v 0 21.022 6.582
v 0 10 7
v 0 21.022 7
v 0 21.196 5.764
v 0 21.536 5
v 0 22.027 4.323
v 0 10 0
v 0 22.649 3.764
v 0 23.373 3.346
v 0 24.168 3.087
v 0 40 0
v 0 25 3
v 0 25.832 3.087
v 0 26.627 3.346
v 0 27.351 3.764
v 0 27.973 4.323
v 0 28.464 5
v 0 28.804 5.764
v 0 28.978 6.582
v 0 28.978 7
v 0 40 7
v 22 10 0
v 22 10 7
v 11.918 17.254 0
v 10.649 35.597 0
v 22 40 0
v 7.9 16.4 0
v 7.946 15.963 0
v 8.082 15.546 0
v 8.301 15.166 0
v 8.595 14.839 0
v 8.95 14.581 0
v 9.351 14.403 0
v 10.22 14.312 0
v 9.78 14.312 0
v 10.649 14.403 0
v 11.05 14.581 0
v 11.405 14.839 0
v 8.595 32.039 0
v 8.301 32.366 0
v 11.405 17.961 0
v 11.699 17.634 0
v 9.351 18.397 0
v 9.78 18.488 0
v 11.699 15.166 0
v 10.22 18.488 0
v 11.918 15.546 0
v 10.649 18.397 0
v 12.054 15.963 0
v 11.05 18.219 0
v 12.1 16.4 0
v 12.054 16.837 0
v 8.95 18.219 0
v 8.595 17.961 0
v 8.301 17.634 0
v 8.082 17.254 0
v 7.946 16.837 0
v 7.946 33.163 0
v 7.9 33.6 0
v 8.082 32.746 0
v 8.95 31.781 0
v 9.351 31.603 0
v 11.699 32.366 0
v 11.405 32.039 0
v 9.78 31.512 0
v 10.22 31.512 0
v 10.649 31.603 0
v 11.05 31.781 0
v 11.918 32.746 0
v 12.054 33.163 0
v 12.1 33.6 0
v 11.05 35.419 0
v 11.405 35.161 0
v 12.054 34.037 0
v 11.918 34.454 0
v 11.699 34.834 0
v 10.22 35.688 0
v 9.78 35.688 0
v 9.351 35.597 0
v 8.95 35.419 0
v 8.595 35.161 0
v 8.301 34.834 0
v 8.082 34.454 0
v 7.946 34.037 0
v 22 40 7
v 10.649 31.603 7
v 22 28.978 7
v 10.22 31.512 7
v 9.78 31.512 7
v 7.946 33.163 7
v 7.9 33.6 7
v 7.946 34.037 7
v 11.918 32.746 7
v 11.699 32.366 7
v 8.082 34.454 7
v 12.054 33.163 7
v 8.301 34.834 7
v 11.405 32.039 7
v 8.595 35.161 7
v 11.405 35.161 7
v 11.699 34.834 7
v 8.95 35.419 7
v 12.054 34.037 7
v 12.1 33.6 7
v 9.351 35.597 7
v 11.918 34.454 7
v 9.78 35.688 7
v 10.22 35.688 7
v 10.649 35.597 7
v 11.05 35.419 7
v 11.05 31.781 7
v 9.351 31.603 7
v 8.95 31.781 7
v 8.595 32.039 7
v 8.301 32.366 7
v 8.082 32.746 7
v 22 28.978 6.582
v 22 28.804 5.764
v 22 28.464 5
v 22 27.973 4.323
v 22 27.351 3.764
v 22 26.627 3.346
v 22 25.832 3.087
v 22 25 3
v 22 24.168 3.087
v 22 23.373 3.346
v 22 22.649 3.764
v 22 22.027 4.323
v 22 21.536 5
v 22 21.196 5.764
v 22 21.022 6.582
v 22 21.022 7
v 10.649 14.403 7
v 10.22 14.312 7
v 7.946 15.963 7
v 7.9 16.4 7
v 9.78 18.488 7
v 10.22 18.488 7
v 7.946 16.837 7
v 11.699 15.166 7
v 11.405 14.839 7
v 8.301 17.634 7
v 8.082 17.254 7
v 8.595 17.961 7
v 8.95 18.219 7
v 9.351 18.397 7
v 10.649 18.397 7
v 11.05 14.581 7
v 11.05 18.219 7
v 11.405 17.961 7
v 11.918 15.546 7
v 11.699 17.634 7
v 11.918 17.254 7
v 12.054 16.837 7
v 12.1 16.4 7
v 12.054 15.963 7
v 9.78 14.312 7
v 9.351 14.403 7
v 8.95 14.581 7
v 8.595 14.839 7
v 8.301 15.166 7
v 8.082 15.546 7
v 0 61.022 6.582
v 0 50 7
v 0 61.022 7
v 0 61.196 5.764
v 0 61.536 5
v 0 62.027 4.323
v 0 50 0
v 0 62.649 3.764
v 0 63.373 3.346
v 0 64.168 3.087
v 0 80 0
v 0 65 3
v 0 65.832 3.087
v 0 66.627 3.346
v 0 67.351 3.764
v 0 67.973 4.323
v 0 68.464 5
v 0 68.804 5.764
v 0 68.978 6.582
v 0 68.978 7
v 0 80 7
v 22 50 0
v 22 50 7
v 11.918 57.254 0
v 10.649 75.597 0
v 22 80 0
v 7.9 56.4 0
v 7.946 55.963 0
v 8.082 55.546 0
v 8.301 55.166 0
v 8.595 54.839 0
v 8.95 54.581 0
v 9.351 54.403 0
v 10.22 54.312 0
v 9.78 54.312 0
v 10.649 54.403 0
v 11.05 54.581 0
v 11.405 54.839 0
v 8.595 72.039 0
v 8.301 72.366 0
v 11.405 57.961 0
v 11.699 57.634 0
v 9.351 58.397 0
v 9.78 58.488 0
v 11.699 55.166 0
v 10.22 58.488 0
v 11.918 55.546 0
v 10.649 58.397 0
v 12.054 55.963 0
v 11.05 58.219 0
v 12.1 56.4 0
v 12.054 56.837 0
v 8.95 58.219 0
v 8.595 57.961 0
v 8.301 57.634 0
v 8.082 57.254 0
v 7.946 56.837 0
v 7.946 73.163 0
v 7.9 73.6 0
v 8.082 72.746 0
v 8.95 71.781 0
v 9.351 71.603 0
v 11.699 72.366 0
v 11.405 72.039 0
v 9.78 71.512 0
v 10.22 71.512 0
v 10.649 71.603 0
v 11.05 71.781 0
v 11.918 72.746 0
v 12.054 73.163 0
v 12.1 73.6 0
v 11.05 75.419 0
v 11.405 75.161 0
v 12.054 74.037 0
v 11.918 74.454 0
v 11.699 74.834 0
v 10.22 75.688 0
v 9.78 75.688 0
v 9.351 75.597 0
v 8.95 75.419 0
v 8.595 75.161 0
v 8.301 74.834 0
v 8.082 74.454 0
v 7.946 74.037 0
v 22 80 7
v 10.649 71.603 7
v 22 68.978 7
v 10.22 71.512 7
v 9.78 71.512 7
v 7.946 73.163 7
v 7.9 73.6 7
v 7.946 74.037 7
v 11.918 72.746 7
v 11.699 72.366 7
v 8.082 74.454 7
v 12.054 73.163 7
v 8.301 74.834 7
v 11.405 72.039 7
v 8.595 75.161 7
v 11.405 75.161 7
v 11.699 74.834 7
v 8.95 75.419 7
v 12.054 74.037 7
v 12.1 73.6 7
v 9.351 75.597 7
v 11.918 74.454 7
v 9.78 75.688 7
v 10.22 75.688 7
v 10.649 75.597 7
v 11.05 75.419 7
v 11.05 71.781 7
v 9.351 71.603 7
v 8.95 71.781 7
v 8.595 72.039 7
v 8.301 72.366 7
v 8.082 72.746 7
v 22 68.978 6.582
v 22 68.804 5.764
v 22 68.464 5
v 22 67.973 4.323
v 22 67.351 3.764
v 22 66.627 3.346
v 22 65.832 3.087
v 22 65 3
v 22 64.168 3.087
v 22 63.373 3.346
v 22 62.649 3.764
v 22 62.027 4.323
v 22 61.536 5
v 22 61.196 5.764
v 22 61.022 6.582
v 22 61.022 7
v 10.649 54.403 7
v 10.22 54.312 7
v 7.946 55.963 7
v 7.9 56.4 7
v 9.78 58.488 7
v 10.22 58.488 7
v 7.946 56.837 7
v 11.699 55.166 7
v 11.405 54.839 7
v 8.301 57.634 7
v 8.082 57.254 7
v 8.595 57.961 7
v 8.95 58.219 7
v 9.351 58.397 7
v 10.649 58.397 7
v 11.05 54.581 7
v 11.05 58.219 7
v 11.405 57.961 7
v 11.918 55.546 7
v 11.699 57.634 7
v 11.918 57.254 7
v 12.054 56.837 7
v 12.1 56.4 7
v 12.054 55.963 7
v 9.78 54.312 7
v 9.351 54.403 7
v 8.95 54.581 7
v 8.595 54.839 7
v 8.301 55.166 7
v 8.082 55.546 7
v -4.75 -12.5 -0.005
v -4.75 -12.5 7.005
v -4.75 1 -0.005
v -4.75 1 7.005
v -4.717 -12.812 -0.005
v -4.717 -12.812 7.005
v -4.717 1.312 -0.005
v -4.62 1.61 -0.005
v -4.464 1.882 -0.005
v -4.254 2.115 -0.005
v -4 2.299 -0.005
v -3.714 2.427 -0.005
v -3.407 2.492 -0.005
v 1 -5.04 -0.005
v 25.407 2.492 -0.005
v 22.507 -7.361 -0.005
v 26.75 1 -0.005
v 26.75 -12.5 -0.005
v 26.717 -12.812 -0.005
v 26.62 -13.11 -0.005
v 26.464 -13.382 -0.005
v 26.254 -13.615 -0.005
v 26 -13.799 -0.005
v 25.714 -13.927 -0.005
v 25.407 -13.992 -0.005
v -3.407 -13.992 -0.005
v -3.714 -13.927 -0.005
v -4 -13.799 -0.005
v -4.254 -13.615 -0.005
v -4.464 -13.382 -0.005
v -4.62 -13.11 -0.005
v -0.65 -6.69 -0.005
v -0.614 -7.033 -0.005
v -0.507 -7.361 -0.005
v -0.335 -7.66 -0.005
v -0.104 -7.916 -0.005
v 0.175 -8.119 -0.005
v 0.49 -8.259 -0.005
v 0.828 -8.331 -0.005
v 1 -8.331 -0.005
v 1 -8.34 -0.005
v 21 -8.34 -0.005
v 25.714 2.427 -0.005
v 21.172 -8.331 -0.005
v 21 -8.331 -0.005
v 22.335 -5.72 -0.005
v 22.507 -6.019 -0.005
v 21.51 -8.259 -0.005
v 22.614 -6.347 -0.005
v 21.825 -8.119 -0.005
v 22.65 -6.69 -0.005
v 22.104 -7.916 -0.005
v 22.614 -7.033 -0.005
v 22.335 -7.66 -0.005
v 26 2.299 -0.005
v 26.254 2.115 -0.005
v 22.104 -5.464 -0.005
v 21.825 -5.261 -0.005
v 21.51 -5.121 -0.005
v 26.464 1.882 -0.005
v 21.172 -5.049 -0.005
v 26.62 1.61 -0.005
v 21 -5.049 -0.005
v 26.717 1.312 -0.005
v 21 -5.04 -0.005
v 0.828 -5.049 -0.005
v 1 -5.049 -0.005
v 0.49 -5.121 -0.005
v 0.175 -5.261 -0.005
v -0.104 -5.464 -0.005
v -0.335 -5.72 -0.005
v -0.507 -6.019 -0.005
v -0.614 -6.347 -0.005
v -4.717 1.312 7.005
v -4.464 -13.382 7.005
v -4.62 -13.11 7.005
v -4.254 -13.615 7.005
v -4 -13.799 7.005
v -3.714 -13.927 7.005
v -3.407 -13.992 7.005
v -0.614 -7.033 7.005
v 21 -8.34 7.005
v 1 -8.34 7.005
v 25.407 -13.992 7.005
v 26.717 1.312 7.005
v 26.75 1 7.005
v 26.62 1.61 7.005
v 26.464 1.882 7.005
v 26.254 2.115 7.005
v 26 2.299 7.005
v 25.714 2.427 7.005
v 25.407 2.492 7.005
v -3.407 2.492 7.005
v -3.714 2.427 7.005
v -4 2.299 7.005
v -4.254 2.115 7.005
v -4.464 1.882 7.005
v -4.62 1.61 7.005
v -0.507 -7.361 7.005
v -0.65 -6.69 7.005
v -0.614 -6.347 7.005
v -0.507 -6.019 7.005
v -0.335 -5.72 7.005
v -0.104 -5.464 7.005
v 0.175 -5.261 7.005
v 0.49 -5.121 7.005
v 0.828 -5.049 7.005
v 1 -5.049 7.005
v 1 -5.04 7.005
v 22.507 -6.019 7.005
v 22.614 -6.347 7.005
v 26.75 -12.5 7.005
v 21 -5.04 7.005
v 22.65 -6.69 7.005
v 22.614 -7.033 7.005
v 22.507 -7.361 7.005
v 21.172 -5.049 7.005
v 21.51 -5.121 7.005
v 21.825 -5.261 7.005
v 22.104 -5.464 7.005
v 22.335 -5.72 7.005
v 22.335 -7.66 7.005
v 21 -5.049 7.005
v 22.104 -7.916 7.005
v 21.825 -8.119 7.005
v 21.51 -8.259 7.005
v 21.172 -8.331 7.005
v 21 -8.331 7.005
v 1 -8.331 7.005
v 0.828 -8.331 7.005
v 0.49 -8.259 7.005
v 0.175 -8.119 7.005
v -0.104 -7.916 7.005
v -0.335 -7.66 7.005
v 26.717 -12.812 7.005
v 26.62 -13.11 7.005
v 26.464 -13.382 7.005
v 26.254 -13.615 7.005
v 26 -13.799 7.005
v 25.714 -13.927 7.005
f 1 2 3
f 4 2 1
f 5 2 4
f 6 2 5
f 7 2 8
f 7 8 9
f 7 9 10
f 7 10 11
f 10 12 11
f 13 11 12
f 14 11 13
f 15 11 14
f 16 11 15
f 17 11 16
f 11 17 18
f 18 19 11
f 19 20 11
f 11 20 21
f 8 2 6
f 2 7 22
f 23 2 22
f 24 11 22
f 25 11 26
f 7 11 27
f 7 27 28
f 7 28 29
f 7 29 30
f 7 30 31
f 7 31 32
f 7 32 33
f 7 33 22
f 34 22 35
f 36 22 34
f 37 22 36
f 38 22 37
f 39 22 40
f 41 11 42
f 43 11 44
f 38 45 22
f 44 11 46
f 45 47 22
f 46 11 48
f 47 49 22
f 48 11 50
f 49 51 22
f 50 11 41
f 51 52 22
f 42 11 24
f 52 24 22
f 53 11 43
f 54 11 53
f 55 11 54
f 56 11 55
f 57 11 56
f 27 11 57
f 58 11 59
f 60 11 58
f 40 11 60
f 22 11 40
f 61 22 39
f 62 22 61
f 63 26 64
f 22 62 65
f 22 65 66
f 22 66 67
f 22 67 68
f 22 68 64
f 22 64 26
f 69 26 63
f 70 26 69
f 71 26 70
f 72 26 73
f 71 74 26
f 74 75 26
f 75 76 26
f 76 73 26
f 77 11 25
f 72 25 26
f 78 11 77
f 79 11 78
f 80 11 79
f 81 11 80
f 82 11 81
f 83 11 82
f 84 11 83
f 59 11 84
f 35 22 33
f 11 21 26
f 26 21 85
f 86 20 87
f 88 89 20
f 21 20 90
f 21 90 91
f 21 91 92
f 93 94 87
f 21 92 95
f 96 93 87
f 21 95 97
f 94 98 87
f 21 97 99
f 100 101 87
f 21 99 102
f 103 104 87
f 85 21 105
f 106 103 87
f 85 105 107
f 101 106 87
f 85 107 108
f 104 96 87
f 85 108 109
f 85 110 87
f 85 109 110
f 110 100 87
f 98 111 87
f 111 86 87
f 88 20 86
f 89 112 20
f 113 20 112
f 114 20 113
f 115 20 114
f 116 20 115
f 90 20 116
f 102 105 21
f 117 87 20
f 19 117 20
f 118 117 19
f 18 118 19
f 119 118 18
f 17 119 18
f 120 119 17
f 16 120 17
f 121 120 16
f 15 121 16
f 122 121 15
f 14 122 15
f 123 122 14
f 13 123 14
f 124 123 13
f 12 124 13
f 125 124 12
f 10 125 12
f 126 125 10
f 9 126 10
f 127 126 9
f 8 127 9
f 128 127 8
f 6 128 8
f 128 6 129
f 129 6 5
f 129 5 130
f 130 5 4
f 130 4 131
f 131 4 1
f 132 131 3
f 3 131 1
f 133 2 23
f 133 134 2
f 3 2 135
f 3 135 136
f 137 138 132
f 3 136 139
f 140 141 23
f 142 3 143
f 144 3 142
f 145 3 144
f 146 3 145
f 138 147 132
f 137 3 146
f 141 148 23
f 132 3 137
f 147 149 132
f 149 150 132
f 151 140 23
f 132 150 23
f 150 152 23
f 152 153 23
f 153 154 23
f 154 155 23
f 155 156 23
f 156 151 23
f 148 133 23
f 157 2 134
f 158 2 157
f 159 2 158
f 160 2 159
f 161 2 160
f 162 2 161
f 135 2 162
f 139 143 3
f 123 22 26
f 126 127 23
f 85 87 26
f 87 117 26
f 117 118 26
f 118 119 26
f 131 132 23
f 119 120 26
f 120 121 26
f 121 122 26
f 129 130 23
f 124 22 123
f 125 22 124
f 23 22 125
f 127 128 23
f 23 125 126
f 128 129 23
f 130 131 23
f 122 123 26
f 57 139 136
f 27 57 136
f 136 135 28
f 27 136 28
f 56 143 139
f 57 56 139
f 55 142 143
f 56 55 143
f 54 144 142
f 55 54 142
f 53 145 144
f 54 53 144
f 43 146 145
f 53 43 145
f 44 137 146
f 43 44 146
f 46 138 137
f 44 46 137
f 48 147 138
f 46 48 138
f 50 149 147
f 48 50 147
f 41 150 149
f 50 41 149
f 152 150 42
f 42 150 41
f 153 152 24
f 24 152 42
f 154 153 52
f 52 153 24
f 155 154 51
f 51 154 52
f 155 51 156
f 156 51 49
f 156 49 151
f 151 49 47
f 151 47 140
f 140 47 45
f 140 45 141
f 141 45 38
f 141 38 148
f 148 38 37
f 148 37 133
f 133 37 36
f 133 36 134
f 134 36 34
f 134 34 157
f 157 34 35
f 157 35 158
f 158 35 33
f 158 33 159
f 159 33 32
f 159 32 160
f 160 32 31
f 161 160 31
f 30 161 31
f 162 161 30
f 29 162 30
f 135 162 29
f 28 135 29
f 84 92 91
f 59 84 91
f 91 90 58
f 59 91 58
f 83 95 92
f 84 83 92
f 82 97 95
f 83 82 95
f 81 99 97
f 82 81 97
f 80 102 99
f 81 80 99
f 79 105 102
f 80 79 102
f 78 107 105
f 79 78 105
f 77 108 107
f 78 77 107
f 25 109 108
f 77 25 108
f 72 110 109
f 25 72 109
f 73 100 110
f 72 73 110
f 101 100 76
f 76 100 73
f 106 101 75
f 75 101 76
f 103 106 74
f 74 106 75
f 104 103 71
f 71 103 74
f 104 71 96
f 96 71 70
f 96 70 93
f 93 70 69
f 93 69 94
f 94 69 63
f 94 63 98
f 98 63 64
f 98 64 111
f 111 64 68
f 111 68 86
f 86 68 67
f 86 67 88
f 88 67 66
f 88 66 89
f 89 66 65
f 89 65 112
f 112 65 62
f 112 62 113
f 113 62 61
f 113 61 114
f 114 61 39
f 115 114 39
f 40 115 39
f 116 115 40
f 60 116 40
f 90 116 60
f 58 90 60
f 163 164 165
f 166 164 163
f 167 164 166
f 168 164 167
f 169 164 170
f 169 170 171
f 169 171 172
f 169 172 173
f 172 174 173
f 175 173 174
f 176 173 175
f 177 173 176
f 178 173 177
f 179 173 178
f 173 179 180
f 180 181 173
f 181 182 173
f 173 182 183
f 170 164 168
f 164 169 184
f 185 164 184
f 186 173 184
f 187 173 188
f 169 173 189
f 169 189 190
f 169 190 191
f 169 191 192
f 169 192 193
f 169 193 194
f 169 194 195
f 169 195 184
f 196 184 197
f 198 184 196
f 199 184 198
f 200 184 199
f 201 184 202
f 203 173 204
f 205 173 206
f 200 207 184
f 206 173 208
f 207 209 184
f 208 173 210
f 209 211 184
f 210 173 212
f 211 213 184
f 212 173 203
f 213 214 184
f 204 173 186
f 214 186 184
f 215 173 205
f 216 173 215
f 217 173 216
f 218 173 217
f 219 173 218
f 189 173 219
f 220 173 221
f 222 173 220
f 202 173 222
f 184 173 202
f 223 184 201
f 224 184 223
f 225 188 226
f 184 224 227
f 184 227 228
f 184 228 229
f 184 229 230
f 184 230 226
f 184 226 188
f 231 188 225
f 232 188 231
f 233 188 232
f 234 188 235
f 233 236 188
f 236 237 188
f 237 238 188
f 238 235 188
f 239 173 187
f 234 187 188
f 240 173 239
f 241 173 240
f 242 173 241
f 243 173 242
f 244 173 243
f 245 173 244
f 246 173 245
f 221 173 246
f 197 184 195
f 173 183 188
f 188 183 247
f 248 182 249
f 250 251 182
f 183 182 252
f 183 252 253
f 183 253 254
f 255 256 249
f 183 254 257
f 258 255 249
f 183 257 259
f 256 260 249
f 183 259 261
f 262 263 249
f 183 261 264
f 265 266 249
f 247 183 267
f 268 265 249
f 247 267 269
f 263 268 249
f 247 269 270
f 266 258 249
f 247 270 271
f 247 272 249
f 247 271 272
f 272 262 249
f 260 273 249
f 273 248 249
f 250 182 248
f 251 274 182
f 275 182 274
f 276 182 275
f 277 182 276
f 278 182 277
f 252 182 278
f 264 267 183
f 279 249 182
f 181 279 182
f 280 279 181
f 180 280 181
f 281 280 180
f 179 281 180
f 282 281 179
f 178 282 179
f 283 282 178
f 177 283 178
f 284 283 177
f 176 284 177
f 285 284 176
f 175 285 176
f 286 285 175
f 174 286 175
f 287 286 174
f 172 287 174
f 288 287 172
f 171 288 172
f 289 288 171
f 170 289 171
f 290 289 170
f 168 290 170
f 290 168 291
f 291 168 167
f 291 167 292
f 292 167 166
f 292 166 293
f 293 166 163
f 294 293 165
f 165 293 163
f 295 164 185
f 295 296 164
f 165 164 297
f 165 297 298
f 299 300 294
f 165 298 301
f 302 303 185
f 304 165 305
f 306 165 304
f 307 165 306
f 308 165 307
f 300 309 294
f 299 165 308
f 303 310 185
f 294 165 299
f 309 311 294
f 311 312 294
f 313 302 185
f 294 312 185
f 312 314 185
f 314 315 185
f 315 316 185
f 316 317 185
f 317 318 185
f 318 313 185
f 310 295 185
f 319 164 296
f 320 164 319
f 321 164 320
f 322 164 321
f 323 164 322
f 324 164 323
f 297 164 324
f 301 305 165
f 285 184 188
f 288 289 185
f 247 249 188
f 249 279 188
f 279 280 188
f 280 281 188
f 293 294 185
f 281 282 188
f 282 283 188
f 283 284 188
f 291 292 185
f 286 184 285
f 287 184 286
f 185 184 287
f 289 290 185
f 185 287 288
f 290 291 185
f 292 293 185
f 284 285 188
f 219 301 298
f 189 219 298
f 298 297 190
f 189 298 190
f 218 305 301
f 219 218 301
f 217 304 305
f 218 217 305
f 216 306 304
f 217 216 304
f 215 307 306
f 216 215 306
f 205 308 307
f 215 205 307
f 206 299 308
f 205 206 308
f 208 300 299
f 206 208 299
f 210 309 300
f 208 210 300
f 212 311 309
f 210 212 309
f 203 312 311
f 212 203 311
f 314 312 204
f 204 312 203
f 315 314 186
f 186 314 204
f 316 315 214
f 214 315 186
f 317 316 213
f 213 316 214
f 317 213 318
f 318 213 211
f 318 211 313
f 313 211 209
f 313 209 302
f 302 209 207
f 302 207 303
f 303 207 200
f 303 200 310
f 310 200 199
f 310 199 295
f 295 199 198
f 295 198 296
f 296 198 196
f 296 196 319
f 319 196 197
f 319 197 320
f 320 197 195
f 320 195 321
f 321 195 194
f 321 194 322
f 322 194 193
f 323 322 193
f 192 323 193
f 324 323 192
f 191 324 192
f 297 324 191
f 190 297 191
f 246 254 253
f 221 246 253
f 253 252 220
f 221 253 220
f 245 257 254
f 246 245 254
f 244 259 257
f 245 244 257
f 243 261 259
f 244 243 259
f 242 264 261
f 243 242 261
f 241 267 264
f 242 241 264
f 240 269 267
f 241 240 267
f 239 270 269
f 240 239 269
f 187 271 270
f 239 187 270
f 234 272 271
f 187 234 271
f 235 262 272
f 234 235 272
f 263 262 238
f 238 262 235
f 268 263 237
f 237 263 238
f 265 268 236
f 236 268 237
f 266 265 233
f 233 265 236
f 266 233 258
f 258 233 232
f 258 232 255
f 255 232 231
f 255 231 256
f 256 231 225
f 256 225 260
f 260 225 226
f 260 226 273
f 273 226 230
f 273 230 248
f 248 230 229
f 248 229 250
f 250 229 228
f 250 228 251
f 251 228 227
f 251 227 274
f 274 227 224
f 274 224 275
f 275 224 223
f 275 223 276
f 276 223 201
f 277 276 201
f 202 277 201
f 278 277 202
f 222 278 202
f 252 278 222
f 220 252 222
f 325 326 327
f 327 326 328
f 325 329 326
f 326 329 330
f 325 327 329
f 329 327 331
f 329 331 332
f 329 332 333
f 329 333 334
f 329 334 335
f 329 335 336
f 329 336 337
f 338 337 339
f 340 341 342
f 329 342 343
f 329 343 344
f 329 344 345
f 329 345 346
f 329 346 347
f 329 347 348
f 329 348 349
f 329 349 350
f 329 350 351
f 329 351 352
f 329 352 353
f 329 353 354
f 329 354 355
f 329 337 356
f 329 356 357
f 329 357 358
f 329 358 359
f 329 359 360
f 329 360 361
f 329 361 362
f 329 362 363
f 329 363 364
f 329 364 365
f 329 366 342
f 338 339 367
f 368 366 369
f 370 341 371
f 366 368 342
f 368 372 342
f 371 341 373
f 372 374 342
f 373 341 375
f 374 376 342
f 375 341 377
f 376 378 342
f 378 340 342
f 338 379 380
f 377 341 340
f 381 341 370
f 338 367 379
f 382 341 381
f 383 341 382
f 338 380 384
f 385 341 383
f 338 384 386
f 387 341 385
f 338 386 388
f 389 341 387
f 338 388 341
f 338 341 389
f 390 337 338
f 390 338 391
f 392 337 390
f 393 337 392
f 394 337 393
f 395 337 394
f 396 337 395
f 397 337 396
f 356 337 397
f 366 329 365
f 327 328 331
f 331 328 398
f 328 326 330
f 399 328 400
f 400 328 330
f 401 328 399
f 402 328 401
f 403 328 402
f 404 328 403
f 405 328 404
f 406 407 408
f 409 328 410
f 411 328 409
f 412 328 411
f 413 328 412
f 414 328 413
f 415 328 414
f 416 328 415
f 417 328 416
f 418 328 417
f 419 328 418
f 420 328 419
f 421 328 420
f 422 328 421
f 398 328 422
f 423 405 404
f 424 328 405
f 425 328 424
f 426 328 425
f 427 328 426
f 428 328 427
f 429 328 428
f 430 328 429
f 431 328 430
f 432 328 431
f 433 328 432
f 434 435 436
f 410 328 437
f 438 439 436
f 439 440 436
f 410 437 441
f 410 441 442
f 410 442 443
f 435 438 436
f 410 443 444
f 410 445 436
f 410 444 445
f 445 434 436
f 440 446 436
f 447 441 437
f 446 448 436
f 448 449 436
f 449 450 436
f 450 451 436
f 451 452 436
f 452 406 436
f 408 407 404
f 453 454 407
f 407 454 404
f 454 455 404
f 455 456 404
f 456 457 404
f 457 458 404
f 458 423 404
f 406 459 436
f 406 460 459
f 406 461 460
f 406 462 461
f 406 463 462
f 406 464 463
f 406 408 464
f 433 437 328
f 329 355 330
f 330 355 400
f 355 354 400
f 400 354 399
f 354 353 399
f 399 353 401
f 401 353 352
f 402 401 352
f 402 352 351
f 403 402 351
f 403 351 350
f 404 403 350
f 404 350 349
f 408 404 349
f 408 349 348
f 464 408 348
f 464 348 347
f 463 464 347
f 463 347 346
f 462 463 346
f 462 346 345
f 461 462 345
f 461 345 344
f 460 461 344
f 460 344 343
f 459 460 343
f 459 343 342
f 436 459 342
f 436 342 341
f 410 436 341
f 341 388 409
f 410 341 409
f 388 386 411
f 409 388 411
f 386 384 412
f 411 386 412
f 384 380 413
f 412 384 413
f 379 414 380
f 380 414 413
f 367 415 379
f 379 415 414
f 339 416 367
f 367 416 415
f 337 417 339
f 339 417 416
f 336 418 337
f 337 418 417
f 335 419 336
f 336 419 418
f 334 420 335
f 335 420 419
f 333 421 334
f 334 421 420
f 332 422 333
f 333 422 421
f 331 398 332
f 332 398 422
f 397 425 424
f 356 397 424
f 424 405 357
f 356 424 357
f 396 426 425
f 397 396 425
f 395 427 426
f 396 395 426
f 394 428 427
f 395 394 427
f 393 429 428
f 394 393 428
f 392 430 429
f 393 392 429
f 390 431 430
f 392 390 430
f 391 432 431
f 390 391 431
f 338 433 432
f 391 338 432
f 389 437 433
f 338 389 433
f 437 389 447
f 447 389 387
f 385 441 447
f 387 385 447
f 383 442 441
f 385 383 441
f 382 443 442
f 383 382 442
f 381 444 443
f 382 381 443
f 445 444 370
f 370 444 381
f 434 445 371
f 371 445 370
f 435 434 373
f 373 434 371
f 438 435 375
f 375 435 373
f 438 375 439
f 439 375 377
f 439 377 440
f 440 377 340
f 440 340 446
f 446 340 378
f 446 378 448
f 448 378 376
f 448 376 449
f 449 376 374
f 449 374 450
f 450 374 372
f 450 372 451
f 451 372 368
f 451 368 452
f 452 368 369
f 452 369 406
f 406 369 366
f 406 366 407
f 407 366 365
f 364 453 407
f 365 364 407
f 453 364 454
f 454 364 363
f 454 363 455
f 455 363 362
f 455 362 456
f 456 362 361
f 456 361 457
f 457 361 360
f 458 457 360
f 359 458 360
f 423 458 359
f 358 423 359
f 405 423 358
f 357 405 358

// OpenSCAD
// file: functions.scad
// PRUSA Mendel  
// Functions used in many files
// GNU GPL v2
// Josef Průša
// josefprusa@me.com
// prusadjs.cz
// http://www.reprap.org/wiki/Prusa_Mendel
// http://github.com/prusajr/PrusaMendel

module nut(d,h,horizontal=true){
cornerdiameter =  (d / 2) / cos (180 / 6);
cylinder(h = h, r = cornerdiameter, $fn = 6);
if(horizontal){
for(i = [1:6]){
	rotate([0,0,60*i]) translate([-cornerdiameter-0.2,0,0]) rotate([0,0,-45]) cube(size = [2,2,h]);
}}
}

// By nophead
module polyhole(d,h) {
    n = max(round(2 * d),3);
    rotate([0,0,180])
        cylinder(h = h, r = (d / 2) / cos (180 / n), $fn = n);
}

module roundcorner(diameter){
	difference(){
		cube(size = [diameter,diameter,99], center = false);
		translate(v = [diameter, diameter, 0]) cylinder(h = 100, r=diameter, center=true);
	}
}
// file: metric.scad
// PRUSA Mendel  
// Default metric sizes
// GNU GPL v2
// Josef Průša
// josefprusa@me.com
// prusadjs.cz
// http://www.reprap.org/wiki/Prusa_Mendel
// http://github.com/prusajr/PrusaMendel

// DONT CHANGE THIS FILE! ALTER VALUES IN CONFIGURATION.SCAD INSTEAD

// RODS

threaded_rod_diameter = 8;
threaded_rod_diameter_horizontal = 8;
smooth_bar_diameter = 8;
smooth_bar_diameter_horizontal = 8;

// Nuts and bolts

m8_diameter = 8;
m8_nut_diameter = 14.5;

m4_diameter = 4;
m4_nut_diameter = 7.5;

m3_diameter = 3;
m3_nut_diameter = 5;

// Bushing holder

bushing_core_diameter = smooth_bar_diameter;
bushing_material_thickness = 1;

// Motors

motor_shaft = 5.1;
// file: y-rod-support-clamp.scad
// M8 Y-axes holders for Prism Mendel
// by Terawatt Industries
// author Free Beachler

include <configuration.scad>;

// PARAMETERS
a = 30;								// parts angle
extrusion_width = 20;
holder_height = 20;
holder_width = 60;
mnt_base_thickness = 6;	// need clearance for M4 screws to tnut
overlap = 0.1;			// amount to overlap aluminum t-extrusion
slot_tab_depth = 2;
rod_radius = 4;
offset_above_extrusion = 0;	// top of extrusion to rod-center
m4_screw_edge_padding = 6;
m4_screw_dia = m4_diameter;

// CALCULATIONS
rod_center_offset_vert = mnt_base_thickness / 2;
clamp_rod_radius = rod_radius;

// RENDER
$fn=30;

yrodsupportclamp(holder_height, holder_width, mnt_base_thickness, overlap, slot_tab_depth, clamp_rod_radius, rod_center_offset_vert, m4_screw_dia);

module yrodsupportclamp(yh = holder_height, yw = holder_width, ybt = mnt_base_thickness, yo = overlap, ystd = slot_tab_depth, yrd = clamp_rod_radius, yrcov = rod_center_offset_vert, m4 = m4_screw_dia) 
{
	translate([0,-15,-15]) {
		difference() {
			rodsupport(yh, yw, ybt,yo,ystd,yrd,yrcov);
			// clamp screws
			translate([10, 3 * yw / 8 + yrd / 4 - m4 / 2, -0.01]) rotate([0, 0, 0]) cylinder(r=m4 / 2, h=extrusion_width + offset_above_extrusion + yrd / 2 + (extrusion_width / 2 * sin(a)) + 0.01);
			translate([10, yw - (3 * yw / 8 + yrd / 4 - m4 / 2), -0.01]) rotate([0,0,0]) cylinder(r=m4 / 2, h=extrusion_width + offset_above_extrusion + yrd / 2 + (extrusion_width / 2 * sin(a)) + 0.01);
		}
	}
}


module rodsupport(yh, yw, ybt, yo, ystd, yrd, yrcov)
{
	difference()
	{
		translate([0, yw / 4, extrusion_width - (extrusion_width / 2 * sin(a))]) cube([ybt * 2 + extrusion_width * sin(a), yw / 2, offset_above_extrusion + yrd / 2 + (extrusion_width / 2 * sin(a))]);
		translate([-0.01, yw / 2, extrusion_width + offset_above_extrusion + yrd / 2]) rotate([0,90,0]) cylinder(r=yrd, h=extrusion_width + 2 * yo + extrusion_width * sin(a));
	}
}
// file: configuration.scad
// PRUSA Mendel  
// Configuration file
// GNU GPL v2
// Josef Průša
// josefprusa@me.com
// prusadjs.cz
// http://www.reprap.org/wiki/Prusa_Mendel
// http://github.com/prusajr/PrusaMendel

// PLEASE SELECT ONE OF THE CONFIGURATIONS BELOW
// BY UN-COMMENTING IT

// Uncomment for metric settings
// METRIC METRIC METRIC METRIC METRIC METRIC METRIC METRIC 

include <metric.scad>;

// Uncomment for imperial settings
// IMPERIAL IMPERIAL IMPERIAL IMPERIAL IMPERIAL IMPERIAL IMPERIAL 

//include <sae.scad>;

//thin_wall = 3;
// LM8UU
//linear = false;

// override settings by customizing below
// CUSTOM CUSTOM CUSTOM CUSTOM CUSTOM CUSTOM CUSTOM CUSTOM CUSTOM

threaded_rod_diameter = 8.2;
threaded_rod_diameter_horizontal = 8.2;
smooth_bar_diameter = 8.3;
smooth_bar_diameter_horizontal = 8.3;

// Nuts and bolts

m8_diameter = 8.3;
m8_nut_diameter = 15;

m4_diameter = 4.2;
m4_nut_diameter = 9;

m3_diameter = 3.3;
m3_nut_diameter = 5.8;

///counted stuff
m3_nut_diameter_bigger = ((m3_nut_diameter  / 2) / cos (180 / 6))*2;

// functions 
include <functions.scad>
// main file
// M8 Y-axes holders for Prism Mendel
// by Terawatt Industries
// author Free Beachler

include <configuration.scad>;
use <y-rod-support-clamp.scad>;

// PARAMETERS
a = 30;								// parts angle
holder_height = 20;
holder_width = 60;
mnt_base_thickness = 6;	// need clearance for M4 screws to tnut
overlap = 0.01;			// amount to overlap aluminum t-extrusion
slot_tab_depth = 2;
rod_radius = 4;
offset_above_extrusion = 0;	// top of extrusion to rod-center
m4_screw_edge_padding = 6;
m4 = m4_diameter;
m3 = m3_diameter;

// CALCULATIONS
rod_center_offset_vert = mnt_base_thickness / 2;
clamp_rod_radius = rod_radius;

// RENDER
$fn=30;

translate([0, 0, 0]) z_endstop(holder_height, holder_width, mnt_base_thickness, overlap, slot_tab_depth, clamp_rod_radius, rod_center_offset_vert, m4, m3);

module z_endstop(yh = holder_height, yw = holder_width, ybt = mnt_base_thickness, yo = overlap, ystd = slot_tab_depth, yrd = clamp_rod_radius, yrcov = rod_center_offset_vert, m4 = m4, m3 = m3) 
{
	
	difference() {
		union() {
			translate([0, 10, 0]) yrodsupportclamp(yh, yw, ybt, yo, ystd, yrd, yrcov, m4);
			translate([0, 50, 0]) yrodsupportclamp(yh, yw, ybt, yo, ystd, yrd, yrcov, m4);
			translate([-2.5 - 0.75, -15 + 2.5, 0]) {
				minkowski() {
					cube([yh + 10 - 1.5, 15 - 1.5, ybt + 1]);
					cylinder(r = 1.5, h = 0.01, center = true);
				}
			}
		}
		translate([1, (-12.5 - m4) / 2 + m3 / 2 + 0.01, -0.01]) cylinder(r = m3 / 2, h = 15, center = true);
		translate([1, (-12.5 - m4) / 2 + 0.01, -0.01]) cube([20, m3, ybt + 5]);
		translate([1 + 20, (-12.5 - m4) / 2 + m3 / 2 + 0.01, -0.01]) cylinder(r = m3 / 2, h = 15, center = true);
	}
}
